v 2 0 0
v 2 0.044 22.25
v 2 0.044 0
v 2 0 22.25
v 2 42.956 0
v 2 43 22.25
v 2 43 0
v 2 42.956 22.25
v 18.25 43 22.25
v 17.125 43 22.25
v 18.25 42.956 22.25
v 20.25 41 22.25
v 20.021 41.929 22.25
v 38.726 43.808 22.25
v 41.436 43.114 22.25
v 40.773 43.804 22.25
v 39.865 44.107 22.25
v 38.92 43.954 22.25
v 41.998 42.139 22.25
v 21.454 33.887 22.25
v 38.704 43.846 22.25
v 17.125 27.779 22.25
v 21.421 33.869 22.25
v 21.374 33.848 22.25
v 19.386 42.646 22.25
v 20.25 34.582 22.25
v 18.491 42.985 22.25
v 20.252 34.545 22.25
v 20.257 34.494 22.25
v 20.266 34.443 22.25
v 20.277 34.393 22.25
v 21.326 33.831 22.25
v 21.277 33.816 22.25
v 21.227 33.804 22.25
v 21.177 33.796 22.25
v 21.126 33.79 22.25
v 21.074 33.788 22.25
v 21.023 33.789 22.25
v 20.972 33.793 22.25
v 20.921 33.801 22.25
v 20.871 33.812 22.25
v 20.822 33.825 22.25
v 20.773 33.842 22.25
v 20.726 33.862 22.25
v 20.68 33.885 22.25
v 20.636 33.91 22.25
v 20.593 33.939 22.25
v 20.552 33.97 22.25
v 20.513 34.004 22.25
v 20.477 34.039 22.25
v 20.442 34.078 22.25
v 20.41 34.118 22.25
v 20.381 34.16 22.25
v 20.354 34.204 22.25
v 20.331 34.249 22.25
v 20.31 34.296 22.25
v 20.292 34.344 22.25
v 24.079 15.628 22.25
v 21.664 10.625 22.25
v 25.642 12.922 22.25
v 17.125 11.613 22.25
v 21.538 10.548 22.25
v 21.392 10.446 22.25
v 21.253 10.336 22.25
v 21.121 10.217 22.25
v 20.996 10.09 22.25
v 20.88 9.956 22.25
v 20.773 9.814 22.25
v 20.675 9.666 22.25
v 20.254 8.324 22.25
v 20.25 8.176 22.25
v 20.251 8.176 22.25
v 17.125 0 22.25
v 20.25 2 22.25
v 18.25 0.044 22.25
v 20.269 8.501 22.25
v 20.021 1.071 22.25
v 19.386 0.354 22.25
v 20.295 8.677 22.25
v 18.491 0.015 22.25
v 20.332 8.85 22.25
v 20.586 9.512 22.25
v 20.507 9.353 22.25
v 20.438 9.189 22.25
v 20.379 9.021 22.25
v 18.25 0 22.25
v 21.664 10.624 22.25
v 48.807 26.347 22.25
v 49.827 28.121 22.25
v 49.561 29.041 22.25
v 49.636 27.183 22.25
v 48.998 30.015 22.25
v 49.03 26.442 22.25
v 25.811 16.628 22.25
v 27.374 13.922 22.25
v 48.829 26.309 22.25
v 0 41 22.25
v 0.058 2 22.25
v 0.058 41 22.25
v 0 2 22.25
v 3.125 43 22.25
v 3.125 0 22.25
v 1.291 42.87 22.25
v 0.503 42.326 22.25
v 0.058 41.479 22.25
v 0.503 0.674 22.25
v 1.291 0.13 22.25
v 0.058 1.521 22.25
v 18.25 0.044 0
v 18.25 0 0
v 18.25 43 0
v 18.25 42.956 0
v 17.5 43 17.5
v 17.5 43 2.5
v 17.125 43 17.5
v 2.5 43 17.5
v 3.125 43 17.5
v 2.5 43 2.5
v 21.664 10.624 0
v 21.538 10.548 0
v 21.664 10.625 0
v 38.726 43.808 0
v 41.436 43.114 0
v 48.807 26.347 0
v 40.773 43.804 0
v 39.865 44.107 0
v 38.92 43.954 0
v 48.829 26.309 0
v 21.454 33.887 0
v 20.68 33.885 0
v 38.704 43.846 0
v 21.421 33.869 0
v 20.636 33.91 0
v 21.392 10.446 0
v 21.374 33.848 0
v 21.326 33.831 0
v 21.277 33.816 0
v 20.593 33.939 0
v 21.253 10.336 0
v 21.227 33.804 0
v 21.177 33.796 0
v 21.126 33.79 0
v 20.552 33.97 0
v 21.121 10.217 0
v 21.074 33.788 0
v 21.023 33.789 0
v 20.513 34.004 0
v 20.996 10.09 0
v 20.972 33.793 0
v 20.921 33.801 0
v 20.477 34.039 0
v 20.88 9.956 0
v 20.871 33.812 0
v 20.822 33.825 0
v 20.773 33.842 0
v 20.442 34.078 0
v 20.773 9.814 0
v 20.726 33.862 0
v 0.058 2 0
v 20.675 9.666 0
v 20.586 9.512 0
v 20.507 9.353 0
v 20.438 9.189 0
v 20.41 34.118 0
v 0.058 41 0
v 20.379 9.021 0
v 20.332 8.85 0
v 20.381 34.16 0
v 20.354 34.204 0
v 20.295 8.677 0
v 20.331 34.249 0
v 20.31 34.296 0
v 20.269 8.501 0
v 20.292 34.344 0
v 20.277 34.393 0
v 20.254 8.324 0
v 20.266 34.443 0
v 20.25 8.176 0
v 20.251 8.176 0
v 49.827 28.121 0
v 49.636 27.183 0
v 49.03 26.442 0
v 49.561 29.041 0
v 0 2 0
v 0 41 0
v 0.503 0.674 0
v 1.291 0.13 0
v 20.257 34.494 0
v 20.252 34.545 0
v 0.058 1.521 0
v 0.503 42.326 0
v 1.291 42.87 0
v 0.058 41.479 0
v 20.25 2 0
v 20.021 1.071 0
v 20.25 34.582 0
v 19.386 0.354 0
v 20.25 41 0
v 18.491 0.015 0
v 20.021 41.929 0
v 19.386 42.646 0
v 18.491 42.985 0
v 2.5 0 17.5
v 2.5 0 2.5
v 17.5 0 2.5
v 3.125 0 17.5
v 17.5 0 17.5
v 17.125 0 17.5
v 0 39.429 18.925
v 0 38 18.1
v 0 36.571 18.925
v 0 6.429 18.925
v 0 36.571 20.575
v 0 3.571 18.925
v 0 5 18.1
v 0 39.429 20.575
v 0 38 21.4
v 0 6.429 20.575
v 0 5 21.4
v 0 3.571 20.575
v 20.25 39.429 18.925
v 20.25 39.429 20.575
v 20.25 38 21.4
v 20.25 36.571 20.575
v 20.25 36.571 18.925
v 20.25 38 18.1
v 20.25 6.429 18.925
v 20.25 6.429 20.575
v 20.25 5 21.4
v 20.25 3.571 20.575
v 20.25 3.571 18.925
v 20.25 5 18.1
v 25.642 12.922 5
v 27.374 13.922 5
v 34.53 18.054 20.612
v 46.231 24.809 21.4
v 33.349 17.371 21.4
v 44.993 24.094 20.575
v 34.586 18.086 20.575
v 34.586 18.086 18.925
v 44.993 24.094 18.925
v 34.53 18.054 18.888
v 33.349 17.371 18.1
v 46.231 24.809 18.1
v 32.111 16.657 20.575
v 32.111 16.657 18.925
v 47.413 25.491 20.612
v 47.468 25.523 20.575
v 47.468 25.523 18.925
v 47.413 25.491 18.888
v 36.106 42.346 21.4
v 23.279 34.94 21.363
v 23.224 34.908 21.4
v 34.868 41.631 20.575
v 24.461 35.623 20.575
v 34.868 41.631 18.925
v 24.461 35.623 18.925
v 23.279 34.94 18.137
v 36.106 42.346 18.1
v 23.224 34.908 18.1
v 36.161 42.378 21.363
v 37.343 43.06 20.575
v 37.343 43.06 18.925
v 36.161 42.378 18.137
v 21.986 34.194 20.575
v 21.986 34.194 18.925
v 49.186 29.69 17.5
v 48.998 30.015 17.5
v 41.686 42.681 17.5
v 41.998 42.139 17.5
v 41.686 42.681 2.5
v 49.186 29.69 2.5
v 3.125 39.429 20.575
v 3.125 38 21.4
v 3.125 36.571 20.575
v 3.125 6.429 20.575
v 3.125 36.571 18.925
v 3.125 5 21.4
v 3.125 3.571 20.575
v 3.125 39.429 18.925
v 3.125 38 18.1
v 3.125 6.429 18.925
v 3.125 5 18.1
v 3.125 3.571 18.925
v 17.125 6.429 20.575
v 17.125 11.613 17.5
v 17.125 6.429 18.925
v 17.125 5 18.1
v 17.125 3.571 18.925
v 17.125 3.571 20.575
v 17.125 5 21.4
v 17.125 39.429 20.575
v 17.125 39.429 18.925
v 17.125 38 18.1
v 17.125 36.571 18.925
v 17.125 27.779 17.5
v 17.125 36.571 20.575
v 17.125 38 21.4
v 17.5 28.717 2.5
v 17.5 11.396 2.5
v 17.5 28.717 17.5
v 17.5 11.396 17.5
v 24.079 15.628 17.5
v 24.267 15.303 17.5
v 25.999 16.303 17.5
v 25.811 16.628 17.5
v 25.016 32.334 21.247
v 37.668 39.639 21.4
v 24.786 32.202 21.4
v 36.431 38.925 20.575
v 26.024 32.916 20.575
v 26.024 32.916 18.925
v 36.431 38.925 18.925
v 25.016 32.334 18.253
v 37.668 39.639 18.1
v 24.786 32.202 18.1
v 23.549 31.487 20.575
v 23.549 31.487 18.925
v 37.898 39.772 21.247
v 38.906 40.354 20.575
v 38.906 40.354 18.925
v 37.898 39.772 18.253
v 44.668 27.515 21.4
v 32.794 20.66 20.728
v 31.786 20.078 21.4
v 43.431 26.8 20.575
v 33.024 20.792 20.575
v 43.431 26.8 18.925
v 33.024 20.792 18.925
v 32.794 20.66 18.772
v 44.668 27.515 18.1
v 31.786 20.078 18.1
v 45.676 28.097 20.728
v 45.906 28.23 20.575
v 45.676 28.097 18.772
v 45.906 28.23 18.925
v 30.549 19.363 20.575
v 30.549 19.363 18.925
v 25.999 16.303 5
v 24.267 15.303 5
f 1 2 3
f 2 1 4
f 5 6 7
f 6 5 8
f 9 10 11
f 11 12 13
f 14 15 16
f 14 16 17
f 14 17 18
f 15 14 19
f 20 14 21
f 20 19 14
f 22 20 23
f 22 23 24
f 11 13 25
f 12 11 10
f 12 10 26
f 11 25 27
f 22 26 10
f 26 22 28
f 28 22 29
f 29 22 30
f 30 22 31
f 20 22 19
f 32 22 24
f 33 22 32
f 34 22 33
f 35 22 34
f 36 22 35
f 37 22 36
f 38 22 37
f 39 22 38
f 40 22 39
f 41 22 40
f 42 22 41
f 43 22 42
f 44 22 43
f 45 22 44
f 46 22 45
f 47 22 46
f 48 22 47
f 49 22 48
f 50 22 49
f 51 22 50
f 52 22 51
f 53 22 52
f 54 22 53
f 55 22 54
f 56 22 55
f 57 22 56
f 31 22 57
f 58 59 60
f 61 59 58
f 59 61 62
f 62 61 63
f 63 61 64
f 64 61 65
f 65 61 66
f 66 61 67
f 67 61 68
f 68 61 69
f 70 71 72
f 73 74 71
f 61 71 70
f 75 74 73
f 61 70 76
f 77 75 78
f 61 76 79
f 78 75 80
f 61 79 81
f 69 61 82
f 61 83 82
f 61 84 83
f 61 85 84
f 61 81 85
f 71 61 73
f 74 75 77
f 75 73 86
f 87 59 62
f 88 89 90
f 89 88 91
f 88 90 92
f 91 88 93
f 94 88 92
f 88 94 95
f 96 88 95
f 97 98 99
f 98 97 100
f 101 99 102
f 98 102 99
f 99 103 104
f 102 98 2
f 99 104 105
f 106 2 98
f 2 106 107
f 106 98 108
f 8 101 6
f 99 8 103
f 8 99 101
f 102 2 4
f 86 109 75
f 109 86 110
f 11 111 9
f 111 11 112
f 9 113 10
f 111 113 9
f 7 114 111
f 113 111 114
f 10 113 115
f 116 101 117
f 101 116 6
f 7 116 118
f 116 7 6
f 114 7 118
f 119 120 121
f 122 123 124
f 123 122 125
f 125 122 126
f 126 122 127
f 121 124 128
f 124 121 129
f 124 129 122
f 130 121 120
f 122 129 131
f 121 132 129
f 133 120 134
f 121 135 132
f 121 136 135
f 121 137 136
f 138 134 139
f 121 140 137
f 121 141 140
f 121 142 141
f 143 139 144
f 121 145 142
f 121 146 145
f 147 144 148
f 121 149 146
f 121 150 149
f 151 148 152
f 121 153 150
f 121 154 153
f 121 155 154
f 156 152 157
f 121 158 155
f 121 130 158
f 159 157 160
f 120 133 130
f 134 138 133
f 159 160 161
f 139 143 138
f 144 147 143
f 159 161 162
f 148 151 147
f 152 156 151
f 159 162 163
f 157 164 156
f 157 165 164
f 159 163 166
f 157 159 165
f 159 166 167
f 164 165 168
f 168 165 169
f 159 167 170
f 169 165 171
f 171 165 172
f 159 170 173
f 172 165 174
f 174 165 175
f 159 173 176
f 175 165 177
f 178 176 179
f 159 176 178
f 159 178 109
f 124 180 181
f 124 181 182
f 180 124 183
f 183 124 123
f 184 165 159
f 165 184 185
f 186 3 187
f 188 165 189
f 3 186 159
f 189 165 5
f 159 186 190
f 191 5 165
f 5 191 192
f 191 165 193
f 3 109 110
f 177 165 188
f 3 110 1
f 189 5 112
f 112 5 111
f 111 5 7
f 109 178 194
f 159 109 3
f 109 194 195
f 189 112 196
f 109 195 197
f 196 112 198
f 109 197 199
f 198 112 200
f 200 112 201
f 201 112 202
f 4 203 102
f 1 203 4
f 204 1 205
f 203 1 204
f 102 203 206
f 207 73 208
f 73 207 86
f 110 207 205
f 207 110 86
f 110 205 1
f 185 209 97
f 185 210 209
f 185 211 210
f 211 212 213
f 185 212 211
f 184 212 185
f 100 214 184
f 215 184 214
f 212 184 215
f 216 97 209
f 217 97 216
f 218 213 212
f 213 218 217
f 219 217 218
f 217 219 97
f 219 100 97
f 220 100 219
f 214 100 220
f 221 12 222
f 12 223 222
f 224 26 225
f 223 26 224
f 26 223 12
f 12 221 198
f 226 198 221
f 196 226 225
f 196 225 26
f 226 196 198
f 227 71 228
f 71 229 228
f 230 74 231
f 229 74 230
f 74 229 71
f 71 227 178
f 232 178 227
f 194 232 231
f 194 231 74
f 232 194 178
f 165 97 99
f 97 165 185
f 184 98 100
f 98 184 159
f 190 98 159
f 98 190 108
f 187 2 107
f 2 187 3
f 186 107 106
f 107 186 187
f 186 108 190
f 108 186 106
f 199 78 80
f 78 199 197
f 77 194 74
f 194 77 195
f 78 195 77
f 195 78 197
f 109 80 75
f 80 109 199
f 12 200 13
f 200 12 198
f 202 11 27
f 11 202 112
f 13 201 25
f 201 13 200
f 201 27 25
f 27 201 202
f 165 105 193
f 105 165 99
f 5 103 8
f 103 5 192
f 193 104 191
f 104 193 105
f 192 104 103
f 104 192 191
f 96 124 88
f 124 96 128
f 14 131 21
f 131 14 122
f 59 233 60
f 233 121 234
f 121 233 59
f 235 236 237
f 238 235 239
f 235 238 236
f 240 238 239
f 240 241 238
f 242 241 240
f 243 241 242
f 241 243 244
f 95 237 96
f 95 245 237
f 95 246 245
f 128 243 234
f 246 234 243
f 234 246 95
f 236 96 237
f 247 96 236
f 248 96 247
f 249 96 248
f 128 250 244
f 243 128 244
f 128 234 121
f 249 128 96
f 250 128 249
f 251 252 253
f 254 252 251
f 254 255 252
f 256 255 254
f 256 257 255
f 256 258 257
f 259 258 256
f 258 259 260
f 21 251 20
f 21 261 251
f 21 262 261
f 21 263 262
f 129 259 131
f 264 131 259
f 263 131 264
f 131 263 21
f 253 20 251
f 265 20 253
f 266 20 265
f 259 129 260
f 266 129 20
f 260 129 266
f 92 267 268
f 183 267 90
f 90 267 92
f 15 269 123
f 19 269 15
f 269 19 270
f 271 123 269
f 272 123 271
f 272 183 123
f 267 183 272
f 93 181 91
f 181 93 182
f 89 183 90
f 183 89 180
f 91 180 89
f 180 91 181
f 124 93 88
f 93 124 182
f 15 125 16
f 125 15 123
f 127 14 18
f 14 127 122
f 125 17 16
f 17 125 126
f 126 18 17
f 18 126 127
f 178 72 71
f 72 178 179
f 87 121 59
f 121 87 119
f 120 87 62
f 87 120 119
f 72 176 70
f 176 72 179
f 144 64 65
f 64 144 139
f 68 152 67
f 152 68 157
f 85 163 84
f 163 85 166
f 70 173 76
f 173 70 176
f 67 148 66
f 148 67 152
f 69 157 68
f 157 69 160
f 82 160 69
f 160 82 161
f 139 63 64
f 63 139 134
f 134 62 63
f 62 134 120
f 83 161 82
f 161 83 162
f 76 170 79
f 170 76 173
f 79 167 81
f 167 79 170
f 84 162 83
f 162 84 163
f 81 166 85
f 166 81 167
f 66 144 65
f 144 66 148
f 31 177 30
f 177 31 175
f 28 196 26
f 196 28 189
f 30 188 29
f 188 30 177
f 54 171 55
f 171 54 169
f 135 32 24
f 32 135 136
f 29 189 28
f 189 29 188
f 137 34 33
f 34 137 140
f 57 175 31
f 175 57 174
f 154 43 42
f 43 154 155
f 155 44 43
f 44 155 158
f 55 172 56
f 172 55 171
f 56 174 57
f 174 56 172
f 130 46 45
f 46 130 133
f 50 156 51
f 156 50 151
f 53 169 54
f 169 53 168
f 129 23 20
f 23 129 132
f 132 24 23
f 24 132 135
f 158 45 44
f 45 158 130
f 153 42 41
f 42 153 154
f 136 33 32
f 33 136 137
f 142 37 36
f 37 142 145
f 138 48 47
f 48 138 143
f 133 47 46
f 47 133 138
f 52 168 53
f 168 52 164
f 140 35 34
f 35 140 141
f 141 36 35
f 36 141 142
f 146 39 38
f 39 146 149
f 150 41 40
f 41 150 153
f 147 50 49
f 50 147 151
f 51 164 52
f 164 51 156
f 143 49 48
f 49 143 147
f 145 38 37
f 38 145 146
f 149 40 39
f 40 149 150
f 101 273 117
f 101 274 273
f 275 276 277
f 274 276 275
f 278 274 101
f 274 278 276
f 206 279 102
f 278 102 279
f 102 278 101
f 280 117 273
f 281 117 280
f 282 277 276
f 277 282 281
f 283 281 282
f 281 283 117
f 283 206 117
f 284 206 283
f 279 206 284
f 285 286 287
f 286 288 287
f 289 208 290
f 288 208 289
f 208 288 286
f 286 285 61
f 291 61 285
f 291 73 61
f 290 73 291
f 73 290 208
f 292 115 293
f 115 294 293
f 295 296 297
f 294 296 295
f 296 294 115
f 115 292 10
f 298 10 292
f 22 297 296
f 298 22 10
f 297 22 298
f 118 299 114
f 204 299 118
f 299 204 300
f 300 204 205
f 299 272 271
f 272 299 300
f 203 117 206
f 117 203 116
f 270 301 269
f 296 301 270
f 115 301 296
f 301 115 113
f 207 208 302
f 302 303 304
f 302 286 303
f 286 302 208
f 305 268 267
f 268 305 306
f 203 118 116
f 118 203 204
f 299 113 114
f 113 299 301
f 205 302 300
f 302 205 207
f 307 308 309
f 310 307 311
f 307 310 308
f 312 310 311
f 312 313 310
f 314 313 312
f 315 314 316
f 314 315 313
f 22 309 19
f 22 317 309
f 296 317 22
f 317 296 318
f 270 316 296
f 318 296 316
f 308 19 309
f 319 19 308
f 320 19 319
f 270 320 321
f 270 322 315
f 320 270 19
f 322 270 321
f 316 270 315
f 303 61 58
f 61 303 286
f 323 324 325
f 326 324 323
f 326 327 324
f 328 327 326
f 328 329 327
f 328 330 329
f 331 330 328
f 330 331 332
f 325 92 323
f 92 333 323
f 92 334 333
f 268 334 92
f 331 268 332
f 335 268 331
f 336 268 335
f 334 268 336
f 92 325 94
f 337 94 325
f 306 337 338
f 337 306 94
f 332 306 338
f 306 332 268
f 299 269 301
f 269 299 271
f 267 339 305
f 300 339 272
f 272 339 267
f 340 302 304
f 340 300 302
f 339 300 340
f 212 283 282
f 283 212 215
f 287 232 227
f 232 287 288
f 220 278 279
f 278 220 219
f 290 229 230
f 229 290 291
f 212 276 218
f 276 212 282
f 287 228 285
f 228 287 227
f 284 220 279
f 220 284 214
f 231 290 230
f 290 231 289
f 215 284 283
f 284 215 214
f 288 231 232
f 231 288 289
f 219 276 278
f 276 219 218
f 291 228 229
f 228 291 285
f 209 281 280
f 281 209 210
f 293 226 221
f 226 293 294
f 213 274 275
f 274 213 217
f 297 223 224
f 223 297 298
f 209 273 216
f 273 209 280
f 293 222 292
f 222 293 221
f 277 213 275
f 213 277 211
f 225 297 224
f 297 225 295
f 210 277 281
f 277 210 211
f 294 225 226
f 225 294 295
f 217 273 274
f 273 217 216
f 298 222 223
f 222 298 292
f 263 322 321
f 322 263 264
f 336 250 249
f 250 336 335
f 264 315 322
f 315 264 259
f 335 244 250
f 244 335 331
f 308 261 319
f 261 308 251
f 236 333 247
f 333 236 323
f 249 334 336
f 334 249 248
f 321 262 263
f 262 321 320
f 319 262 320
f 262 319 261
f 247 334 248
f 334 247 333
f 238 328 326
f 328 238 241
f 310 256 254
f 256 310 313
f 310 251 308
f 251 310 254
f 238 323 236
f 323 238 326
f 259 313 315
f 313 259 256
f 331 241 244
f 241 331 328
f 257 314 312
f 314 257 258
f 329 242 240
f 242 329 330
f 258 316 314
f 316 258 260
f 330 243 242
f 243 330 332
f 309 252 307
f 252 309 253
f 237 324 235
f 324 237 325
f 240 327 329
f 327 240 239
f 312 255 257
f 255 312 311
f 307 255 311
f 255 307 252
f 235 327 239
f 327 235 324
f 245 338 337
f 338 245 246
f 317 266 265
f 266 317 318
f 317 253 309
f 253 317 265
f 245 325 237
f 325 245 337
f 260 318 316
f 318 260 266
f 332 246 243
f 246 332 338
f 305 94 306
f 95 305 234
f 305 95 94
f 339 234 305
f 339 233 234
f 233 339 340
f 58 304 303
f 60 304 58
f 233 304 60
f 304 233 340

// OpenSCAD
// file: util.scad
include <parameters.scad>

//!rounded_cube([40,61,42], 8, center=true);
module rounded_cube(v, r, center=false){
  fn = 4*14;
  v = (v[0] == undef) ? [v, v, v] : v;
  obj_translate = center ?
    [-(v[0] / 2), -(v[1] / 2),	-(v[2] / 2)] : [0, 0, 0];
  d = 2*r;

  //!frame();
  module frame(){
    xy_corners = [[0, 0, 0], [v[0]-d, 0, 0], [v[0]-d, v[1]-d, 0], [0, v[1]-d, 0]];
    translate([r,r,r])
    for(i=[0:3]){
      l = i%2 == 0 ? v[0] - d : v[1] - d;
      translate(xy_corners[i]){
        rotate([0,0,90*i]){
          translate([0,0,-0.005])
          cylinder(r=r, h=v[2]-d+0.01, $fn = fn);
          for(j=[0,v[2]-d]){
            translate([0,0,j]){
              sphere(r, $fn = fn);
              rotate([0,90,0])
                rotate([0,0,0.5*360/fn])
                translate([0,0,-0.005])
                cylinder(r=r, h=l+0.01, $fn = fn);
            }
          }
        }
      }
    }
  }

  //!core();
  module core(){
    //translate([r, r, 0]){
    //  cube([v[0] - d, v[1] - d, v[2]]);
    //}
    //translate([r, 0, r]){
    //  cube([v[0] - d, v[1], v[2] - d]);
    //}
    //translate([0, r, r]){
    //  cube([v[0], v[1] - d, v[2] - d]);
    //}
    translate([r-0.005, r-0.005, 0]){
      cube([v[0] - d+0.01, v[1] - d+0.01, v[2]]);
    }
    translate([r-0.005, 0, r-0.005]){
      cube([v[0] - d+0.01, v[1]+0.01, v[2] - d]);
    }
    translate([0, r-0.005, r-0.005]){
      cube([v[0], v[1] - d+0.01, v[2] - d+0.01]);
    }
  }

  translate(obj_translate){
    union(){
      core();
      frame();
    }
  }
}

//rounded_cube2([20,30,2], 2);
module rounded_cube2(v, r){
  $fs = 1;
  union(){
    translate([r,0,0])           cube([v[0]-2*r, v[1]    , v[2]]);
    translate([0,r,0])           cube([v[0]    , v[1]-2*r, v[2]]);
    translate([r,r,0])           cylinder(h=v[2], r=r);
    translate([v[0]-r,r,0])      cylinder(h=v[2], r=r);
    translate([v[0]-r,v[1]-r,0]) cylinder(h=v[2], r=r);
    translate([r,v[1]-r,0])      cylinder(h=v[2], r=r);
  }
}

//right_rounded_cube2([20,30,2], 2);
module right_rounded_cube2(v, r){
  $fs = 1;
  union(){
                                 cube([v[0]-r, v[1]    , v[2]]);
    translate([0,r,0])           cube([v[0]    , v[1]-2*r, v[2]]);
    translate([v[0]-r,r,0])      cylinder(h=v[2], r=r);
    translate([v[0]-r,v[1]-r,0]) cylinder(h=v[2], r=r);
  }
}

module rounded_square(v, r){
  union(){
    translate([r,0])           square([v[0]-2*r, v[1]]);
    translate([0,r])           square([v[0], v[1]-2*r]);
    translate([r,r])           circle(r);
    translate([v[0]-r,r])      circle(r);
    translate([v[0]-r,v[1]-r]) circle(r);
    translate([r,v[1]-r])      circle(r);
  }
}


module beam(l, standing = false){
  v = standing ? [Beam_width, Beam_width, l] : [l, Beam_width, Beam_width];
  cube(v);
}

module fat_beam(l, standing = false){
  v = standing ? [Fat_beam_width, Fat_beam_width, l] : [l, Fat_beam_width, Fat_beam_width];
  cube(v);
}

//standing_ls_tri(10, 20);
module standing_ls_tri(l, h){
  difference(){
  cube([l,l,h]);
  translate([l,0,0])
    rotate([0,0,45])
    translate([0,0,-1])
    cube([l*sqrt(2),l*sqrt(2),h+2]);
  }
}

// Functions for use with sweep
function my_square(v) = [[-v[0]/2, -v[1]/2],
                         [ v[0]/2, -v[1]/2],
                         [ v[0]/2,  v[1]/2],
                         [-v[0]/2,  v[1]/2]];

function my_rounded_square(v, r, step=7.5) = [
  for (i=[0:step:360])
    i < 90 ?
    [r,r] - r*[cos(i), sin(i)] :
    i < 180 ?
    [v[0]-r,r] - r*[cos(i), sin(i)] :
    i < 270 ?
    [v[0]-r,v[1]-r] - r*[cos(i), sin(i)] :
    [r,v[1]-r] - r*[cos(i), sin(i)]];

function my_rounded_eqtri(l, r, step=3) = [
  for (i=[-30:step:360-30.01])
    (i < 120 - 30) ?
    [r*sqrt(3),r] - r*[cos(i), sin(i)] :
    (i < 240 - 30) ?
    [l-r*sqrt(3),r] - r*[cos(i), sin(i)] :
    [l/2,sqrt(3)*l/2-r*2] - r*[cos(i), sin(i)]];

module rounded_2corner(v, r){
  v = (v[0] == undef) ? [v, v] : v;
  square([v[0]-r,v[1]]);
  translate([0,r])
    square([v[0],v[1]-2*r]);
  translate([v[0]-r, r])
    circle(r=r,$fs = 1);
  translate([v[0]-r, v[1]-r])
    circle(r=r,$fs = 1);
}

module Nema17_screw_translate(corners){
  for (i=[0:90:90*corners - 1]){
    rotate([0,0,i+45]) translate([Nema17_screw_hole_width/2,0,0]) children();
  }
}

module Nema17_screw_holes(d, h, corners=4){
  Nema17_screw_translate(corners) cylinder(r=d/2,h=h);
}

module centered_u_groove_bearing(){
  translate([1.5,-32,0])
    import("U-groove_bearing.stl");
}

// Looks best with $fn = n*8
//round_end([45,41,8]);
module round_end(v){
  v = (v[0] == undef) ? [v, v] : v;
  cube([v[0]-v[1]/2, v[1], v[2]]);
  translate([v[0]-v[1]/2, v[1]/2,0])
    cylinder(d=v[1], h=v[2]);
}

//round_ends([56,41,8]);
module round_ends(v){
  v = (v[0] == undef) ? [v, v] : v;
  translate([v[1]/2,0,0])
    cube([v[0]-v[1], v[1], v[2]]);
  translate([v[0]-v[1]/2, v[1]/2,0])
    cylinder(d=v[1], h=v[2]);
  translate([v[1]/2, v[1]/2,0])
    cylinder(d=v[1], h=v[2]);
}

// Looks best with $fn = n*4
//quarterround_wall([10,20,50,20]);
module quarterround_wall(v){
  v = (v[0] == undef) ? [v, v] : v;
  cube([v[0], v[1], v[2]-v[0]]);
  translate([v[0],0,v[2]-v[0]])
  difference(){
    rotate([-90,0,0])
      cylinder(r=v[0], h=v[1]);
    translate([0,-1,-v[0]-1])
      cube([v[0]+1, v[1]+2, 2*v[0]+2]);
  }
}

//translate([0,-13*(1-cos(60/2+45)) + 13*(1-sin(60/2+45)),0])
//inner_round_corner(13, 2, 60);
module inner_round_corner(r, h, ang=90, back = 0.1){
  cx = r*(1-cos(ang/2+45));
  translate([-r*(1-sin(ang/2+45)), -r*(1-sin(ang/2+45)),0])
  difference(){
    translate([-back, -back, 0])
    cube([cx+back, cx+back, h]);
    translate([r,r,-1])
      cylinder(r=r, h=h+2);
  }
}

module Nema17(){
  M3_diameter = 3;
  cw = Nema17_cube_width;
  ch = Nema17_cube_height;
  sh = Nema17_shaft_height;
  union(){
    color("black")
    difference(){
      translate([-(cw-0.1)/2,-(cw-0.1)/2,1]) cube([cw-0.1,cw-0.1,ch-2]);
      for (i=[0:90:359]){ // Corner cuts black cube
        rotate([0,0,i+45]) translate([50.36/2,-cw/2,-1]) cube([cw,cw,ch+2]);
      }
    }
    color("silver")
    difference(){
      translate([-cw/2,-cw/2,0]) cube([cw,cw,ch]);
      for (i=[0:90:359]){ // Corner cuts silver cube
        rotate([0,0,i+45]) translate([53.36/2,-cw/2,-1]) cube([cw,cw,ch+2]);
      }
      translate([0,0,ch-5]) Nema17_screw_holes(M3_diameter, h=10);
      translate([0,0,-5]) Nema17_screw_holes(M3_diameter, h=10);
      translate([-cw,-cw,9]) cube([2*cw,2*cw,ch-18]);
    }
    color("silver")
    difference(){
      cylinder(r=Nema17_ring_diameter/2, h=ch+Nema17_ring_height);
      translate([0,0,1]) cylinder(r=8.76/2, h=ch+Nema17_ring_height);
    }
    color("silver")
      cylinder(r=5/2, h=sh); // Shaft...
  }
}

module D_shaft(height){
  difference(){
    cylinder(r=Nema17_shaft_radius+0.25, h=height,$fn=13);
    translate([-5,Nema17_shaft_radius-0.55,-1])
      cube([10,10,height+1]);
  }
}

// For making nut locks and stuff
module point_cube(v, ang){
  translate([v[0]/2,0,0])
  difference(){
    translate([-v[0]/2,0,0]) cube(v);
    rotate([0,-ang/2,0]) translate([-2*v[0],1.5-v[1],-v[2]]) cube([2*v[0],2*v[1],3*v[2]]);
    mirror([1,0,0]) rotate([0,-ang/2,0]) translate([-2*v[0],1.5-v[1],-v[2]])
      cube([2*v[0],2*v[1],3*v[2]]);
  }
}

module nutlock(){
  translate([-5.6/2,0,0])
    point_cube([5.6,2.5,9],120);
  translate([0,-3,3.3])
  rotate([-90,0,0])
  cylinder(d=3.5,h=16);
}

module teardrop(r=10, h=10){
  cylinder(r=r, h=h);
  rotate([0,0,45])
    cube([r,r,h]);
}
// file: sweep.scad
// sweep.scad
//
// This code is copied from
// https://github.com/openscad/list-comprehension-demos
// and
// https://github.com/openscad/scad-utils
// to make hangprinter repo self-contained
// It was included in order to make the worm drive parametric
// In future OpenSCAD (or other script CAD programs)
// worm drives should be will be more easily constructed without
// this user space defined sweep operation.
// See OpenSCAD discussion at:
// https://github.com/openscad/openscad/issues/114

// Look into files
// lists.scad
// X transformations.scad
// linalg.scad
// se3.scad
// so3.scad


// Include modules and fcts:

/// linalg.scad
function vec3(p) = len(p) < 3 ? concat(p,0) : p;
function vec4(p) = let (v3=vec3(p)) len(v3) < 4 ? concat(v3,1) : v3;
function take3(v) = [v[0],v[1],v[2]];
function tail3(v) = [v[3],v[4],v[5]];
function construct_Rt(R,t) = [concat(R[0],t[0]),concat(R[1],t[1]),concat(R[2],t[2]),[0,0,0,1]];

/// so3.scad

function se3_exp_2(t,w) = se3_exp_2_0(t,w,w*w);
function se3_exp_2_0(t,w,theta_sq) =
se3_exp_23(
	so3_exp_2(theta_sq),
	C = (1.0 - theta_sq/20) / 6,
	t=t,w=w);

// Taylor series expansions close to 0
function so3_exp_1(theta_sq) = [
	1 - 1/6*theta_sq,
	0.5
];

function rodrigues_so3_exp(w, A, B) = [
  [1.0 - B*(w[1]*w[1] + w[2]*w[2]), B*(w[0]*w[1]) - A*w[2],          B*(w[0]*w[2]) + A*w[1]],
  [B*(w[0]*w[1]) + A*w[2],          1.0 - B*(w[0]*w[0] + w[2]*w[2]), B*(w[1]*w[2]) - A*w[0]],
  [B*(w[0]*w[2]) - A*w[1],          B*(w[1]*w[2]) + A*w[0],          1.0 - B*(w[0]*w[0] + w[1]*w[1])]
];

function so3_exp_3_0(theta_deg, inv_theta) = [
	sin(theta_deg) * inv_theta,
	(1 - cos(theta_deg)) * (inv_theta * inv_theta)
];

/// se3.scad
function combine_se3_exp(w, ABt) = construct_Rt(rodrigues_so3_exp(w, ABt[0], ABt[1]), ABt[2]);
function se3_exp_1(t,w) = concat(
	so3_exp_1(w*w),
	[t + 0.5 * cross(w,t)]
);

function se3_exp_3(t,w) = se3_exp_3_0(t,w,sqrt(w*w)*180/PI,1/sqrt(w*w));

function se3_exp_23(AB,C,t,w) =
[AB[0], AB[1], t + AB[1] * cross(w,t) + C * cross(w,cross(w,t)) ];

function se3_exp_3_0(t,w,theta_deg,inv_theta) =
se3_exp_23(
	so3_exp_3_0(theta_deg = theta_deg, inv_theta = inv_theta),
	C = (1 - sin(theta_deg) * inv_theta) * (inv_theta * inv_theta),
t=t,w=w);

function se3_exp(mu) = se3_exp_0(t=take3(mu),w=tail3(mu)/180*PI);

function se3_exp_0(t,w) =
combine_se3_exp(w,
// Evaluate by Taylor expansion when near 0
	w*w < 1e-8
	? se3_exp_1(t,w)
	: w*w < 1e-6
	  ? se3_exp_2(t,w)
	  : se3_exp_3(t,w)
);


/// lists.scad
/*!
  Flattens a list one level:

  flatten([[0,1],[2,3]]) => [0,1,2,3]
*/
function flatten(list) = [ for (i = list, v = i) v ];
/*!
  Extracts a subarray from index begin (inclusive) to end (exclusive)

  subarray([1,2,3,4], 1, 2) => [2,3]
*/
function subarray(list,begin=0,end=-1) = [
    let(end = end < 0 ? len(list) : end)
      for (i = [begin : 1 : end-1])
        list[i]
];

/// transformations.scad
//********* Create modifying matrices ***************//
/*!
  Creates a rotation matrix

  xyz = euler angles = rz * ry * rx
  axis = rotation_axis * rotation_angle
*/
function rotation(xyz=undef, axis=undef) =
	xyz != undef && axis != undef ? undef :
	xyz == undef  ? se3_exp([0,0,0,axis[0],axis[1],axis[2]]) :
	len(xyz) == undef ? rotation(axis=[0,0,xyz]) :
	(len(xyz) >= 3 ? rotation(axis=[0,0,xyz[2]]) : identity4()) *
	(len(xyz) >= 2 ? rotation(axis=[0,xyz[1],0]) : identity4()) *
(len(xyz) >= 1 ? rotation(axis=[xyz[0],0,0]) : identity4());

/*!
  Creates a scaling matrix
*/
function scaling(v) = [
	[v[0],0,0,0],
	[0,v[1],0,0],
	[0,0,v[2],0],
	[0,0,0,1],
];

/*!
  Creates a translation matrix
*/
function translation(v) = [
	[1,0,0,v[0]],
	[0,1,0,v[1]],
	[0,0,1,v[2]],
	[0,0,0,1],
];


function project(x) = subarray(x,end=len(x)-1) / x[len(x)-1];

function transform(m, list) = [for (p=list) project(m * vec4(p))];

function to_3d(list) = [ for(v = list) vec3(v) ];

module sweep(shape, path_transforms, closed=false) {

    pathlen = len(path_transforms);
    segments = pathlen + (closed ? 0 : -1);
    shape3d = to_3d(shape);

    function sweep_points() =
      flatten([for (i=[0:pathlen-1])
        transform(path_transforms[i], shape3d)]);

    function loop_faces() = [let (facets=len(shape3d))
        for(s=[0:segments-1], i=[0:facets-1])
          [(s%pathlen) * facets + i,
           (s%pathlen) * facets + (i + 1) % facets,
           ((s + 1) % pathlen) * facets + (i + 1) % facets,
           ((s + 1) % pathlen) * facets + i]];

    bottom_cap = closed ? [] : [[for (i=[len(shape3d)-1:-1:0]) i]];
    top_cap = closed ? [] : [
      [for (i=[0:len(shape3d)-1])
        i+len(shape3d)*(pathlen-1)]];
    polyhedron(points = sweep_points(),
               faces  = concat(loop_faces(),
                               bottom_cap,
                               top_cap),
               convexity=5);
}
// file: parameters.scad
// Parameters shared between modules
Base_th = 2.8;
Beam_width = 15;
Wiggle = 0.25;
Fat_beam_width = Beam_width + Wiggle;
Beam_length = 400;
Wall_th = 2.5;
Min_beam_width = 12.5;
Max_beam_width = 17.5;
Zip_th = 2;
Zip_h = Zip_th + Max_beam_width - Min_beam_width;
Zip_w = 5.0;
Nema17_cube_width          = 42.43;
Nema17_screw_hole_width    = 43.74; // Opposite corner screws
Nema17_ring_diameter       = 22;
Nema17_cube_height         = 39.36;
Nema17_shaft_height        = 63.65;
Nema17_ring_height         = 2;
Nema17_shaft_radius        = 5/2;
b608_outer_dia = 22.2;
b608_width = 7.05;
Gap_between_sandwich_and_plate = 1.5 + Base_th; // 1.5 mm for wiggle
Motor_bracket_flerp_r = 6;
Motor_bracket_flerp = 14;
Motor_bracket_cw = Nema17_cube_width + 6;
Motor_bracket_att_ang = 50;
Mounting_screw_d = 4.5;
Mounting_screw_head_d = 14;
Spool_outer_wall_th = 4;

// Corner clamp parameters
Cc_l1 = (Fat_beam_width+2*Wall_th)*2*sqrt(3);
Cc_rad_b = 4;
Cc_action_point_from_mid = Cc_l1/sqrt(3)-2*Cc_rad_b-1.3;  // 1.3 chosen arbitrarily
Cc_plastic_length = sqrt(Cc_action_point_from_mid*Cc_action_point_from_mid
                       - (Cc_action_point_from_mid/2)*(Cc_action_point_from_mid/2));

// The distance between the two action points on the mover
Sidelength = Beam_length + 2*Cc_plastic_length;

/////// Layout parameters ////////////
Ext_sidelength = Sidelength+77;
Additional_added_plate_side_length = 10;
Yshift_top_plate = -25;

/////// Gear parameters ////////////
Circular_pitch = 262;
Motor_teeth = 10;
Gear_height = 21.4-3;
Motor_pitch                      = (Motor_teeth*Circular_pitch/360);
Motor_pitch_diametrial           = Motor_teeth/(2*Motor_pitch);
Motor_outer_radius               = Motor_pitch + 1/Motor_pitch_diametrial;
Spool_teeth = 100;
Spool_r = 55;
Spool_height = 8;
Spool_pitch                      = (Spool_teeth*Circular_pitch/360);
Spool_pitch_diametrial           = Spool_teeth/(2*Spool_pitch);
Spool_outer_radius               = Spool_pitch + 1/Spool_pitch_diametrial;
Torx_depth = 5;
Motor_bracket_depth = Gear_height+1+7+Nema17_ring_height+1+Gap_between_sandwich_and_plate;
Spool_core_flerp0 = 16+3;

/////// Lineroller parameters ////////////
b623_width  = 4;
b623_bore_r = 3/2;
b623_vgroove_big_r = 12/2;
b623_vgroove_small_r = 10/2;
Lineroller_wall_th = 2.3;


// The height that lineroller_ABC_winch will have if we include the bearing
Tower_h = Gap_between_sandwich_and_plate+Gear_height
         + Spool_height/2
         + b623_vgroove_small_r
         + b623_vgroove_big_r;
Bearing_wall = 1;
Depth_of_lineroller_tower = b623_width + 2*Wall_th; // 9
Depth_of_lineroller_base = Depth_of_lineroller_tower + 9; // 18
Ptfe_r = 2.1;
Lineroller_base_r = Depth_of_lineroller_base/2-1*(Ptfe_r+2);
Screw_h = 2;
Screw_head_h = 2;
Spool_center_bearing_wall_th = 5;
Idler_block_bearing_center_to_center = 15;

//// Lineroller anchor parameters /////

Bearing_0_x = 2*b623_vgroove_big_r+Bearing_wall+5.3;
Bearing_1_x = b623_vgroove_small_r-0.9;
Move_tower = -12.2;
Lower_bearing_z = 13;
Higher_bearing_z = Lower_bearing_z + Idler_block_bearing_center_to_center;
// main file
include <parameters.scad>
use <sweep.scad>
use <util.scad>

//%prev_art();
module prev_art(){
  translate([0,15+2*2.5,0])
    rotate([180,0,0])
    import("../stl/beam_clamp.stl");
}

beam_clamp();
module beam_clamp(){
  wall_th = Wall_th;
  l0 = 43;
  l1 = 35;
  edges = 0.625;
  opening_width = Fat_beam_width - 2*edges;
  module rot_move(){
    translate([Fat_beam_width+2*wall_th,(l0 - (2/sqrt(3))*(Fat_beam_width+2*wall_th))/2,0])
      rotate([0,0,-60])
        translate([-Fat_beam_width-2*wall_th,0,0])
          children();
  }

  module antibalk(){
    extralen = 2;
    translate([wall_th+edges, -extralen, wall_th])
      cube([opening_width, l0+2*extralen, 100]);
    translate([Beam_width+wall_th, -extralen, wall_th])
      rotate([0,0,90])
        beam(l0+2*extralen);
  }

  difference(){
    union(){
      r0 = 2; // inner round corner radius
      a0 = 60;
      sink0 = r0*sin(15)*2/sqrt(6);
      r1 = 1;
      a1 = 120;
      sink1 = r1*2/sqrt(30);
      rounded_cube2([Fat_beam_width+2*wall_th, l0, Fat_beam_width+2*wall_th+2], 2);
      rot_move(){
        translate([Fat_beam_width+2*wall_th,0,0])
          rotate([0,0,90])
            right_rounded_cube2([l1, Fat_beam_width+2*wall_th, Fat_beam_width+2*wall_th+2],2);
        translate([Fat_beam_width+2*wall_th,0,0])
          rotate([0,0,-15])
            translate([-sink0,-sink0,0])
              inner_round_corner(r0/(1-cos(a0/2+45)-(1-sin(a0/2+45))),
                                 Fat_beam_width+2*wall_th+2, a0, $fn=100);
        translate([0,(1/sqrt(3))*(Fat_beam_width+2*wall_th) + (0)*r1,0])
          rotate([0,0,-15])
            translate([-sink1,sink1,0])
              rotate([0,0,90])
                inner_round_corner(r1/(1-cos(a1/2+45)-(1-sin(a1/2+45))),
                                   Fat_beam_width+2*wall_th+2, a1, 0.4, $fn=100);
      }
    }
    scrw_fr_edg = 5;
    antibalk();
    rot_move()
      antibalk();
    for(y=[scrw_fr_edg, l0-scrw_fr_edg])
      translate([-1, y, Fat_beam_width+2*wall_th+2-2.5])
        rotate([0,90,0])
          cylinder(d=3.3, h=Fat_beam_width+2*wall_th+2);
    for(y=[l1 - scrw_fr_edg, (Fat_beam_width+2*wall_th)/2 + scrw_fr_edg])
      rot_move()
        translate([-1, y, Fat_beam_width+2*wall_th+2-2.5])
          rotate([0,90,0])
            cylinder(d=3.3, h=Fat_beam_width+2*wall_th+2);
    rot_move()
      translate([Fat_beam_width/2, (Fat_beam_width)*(1/sqrt(6)), wall_th*2])
      cube([Fat_beam_width+2*wall_th+2, 2, 100]);
  }
}
